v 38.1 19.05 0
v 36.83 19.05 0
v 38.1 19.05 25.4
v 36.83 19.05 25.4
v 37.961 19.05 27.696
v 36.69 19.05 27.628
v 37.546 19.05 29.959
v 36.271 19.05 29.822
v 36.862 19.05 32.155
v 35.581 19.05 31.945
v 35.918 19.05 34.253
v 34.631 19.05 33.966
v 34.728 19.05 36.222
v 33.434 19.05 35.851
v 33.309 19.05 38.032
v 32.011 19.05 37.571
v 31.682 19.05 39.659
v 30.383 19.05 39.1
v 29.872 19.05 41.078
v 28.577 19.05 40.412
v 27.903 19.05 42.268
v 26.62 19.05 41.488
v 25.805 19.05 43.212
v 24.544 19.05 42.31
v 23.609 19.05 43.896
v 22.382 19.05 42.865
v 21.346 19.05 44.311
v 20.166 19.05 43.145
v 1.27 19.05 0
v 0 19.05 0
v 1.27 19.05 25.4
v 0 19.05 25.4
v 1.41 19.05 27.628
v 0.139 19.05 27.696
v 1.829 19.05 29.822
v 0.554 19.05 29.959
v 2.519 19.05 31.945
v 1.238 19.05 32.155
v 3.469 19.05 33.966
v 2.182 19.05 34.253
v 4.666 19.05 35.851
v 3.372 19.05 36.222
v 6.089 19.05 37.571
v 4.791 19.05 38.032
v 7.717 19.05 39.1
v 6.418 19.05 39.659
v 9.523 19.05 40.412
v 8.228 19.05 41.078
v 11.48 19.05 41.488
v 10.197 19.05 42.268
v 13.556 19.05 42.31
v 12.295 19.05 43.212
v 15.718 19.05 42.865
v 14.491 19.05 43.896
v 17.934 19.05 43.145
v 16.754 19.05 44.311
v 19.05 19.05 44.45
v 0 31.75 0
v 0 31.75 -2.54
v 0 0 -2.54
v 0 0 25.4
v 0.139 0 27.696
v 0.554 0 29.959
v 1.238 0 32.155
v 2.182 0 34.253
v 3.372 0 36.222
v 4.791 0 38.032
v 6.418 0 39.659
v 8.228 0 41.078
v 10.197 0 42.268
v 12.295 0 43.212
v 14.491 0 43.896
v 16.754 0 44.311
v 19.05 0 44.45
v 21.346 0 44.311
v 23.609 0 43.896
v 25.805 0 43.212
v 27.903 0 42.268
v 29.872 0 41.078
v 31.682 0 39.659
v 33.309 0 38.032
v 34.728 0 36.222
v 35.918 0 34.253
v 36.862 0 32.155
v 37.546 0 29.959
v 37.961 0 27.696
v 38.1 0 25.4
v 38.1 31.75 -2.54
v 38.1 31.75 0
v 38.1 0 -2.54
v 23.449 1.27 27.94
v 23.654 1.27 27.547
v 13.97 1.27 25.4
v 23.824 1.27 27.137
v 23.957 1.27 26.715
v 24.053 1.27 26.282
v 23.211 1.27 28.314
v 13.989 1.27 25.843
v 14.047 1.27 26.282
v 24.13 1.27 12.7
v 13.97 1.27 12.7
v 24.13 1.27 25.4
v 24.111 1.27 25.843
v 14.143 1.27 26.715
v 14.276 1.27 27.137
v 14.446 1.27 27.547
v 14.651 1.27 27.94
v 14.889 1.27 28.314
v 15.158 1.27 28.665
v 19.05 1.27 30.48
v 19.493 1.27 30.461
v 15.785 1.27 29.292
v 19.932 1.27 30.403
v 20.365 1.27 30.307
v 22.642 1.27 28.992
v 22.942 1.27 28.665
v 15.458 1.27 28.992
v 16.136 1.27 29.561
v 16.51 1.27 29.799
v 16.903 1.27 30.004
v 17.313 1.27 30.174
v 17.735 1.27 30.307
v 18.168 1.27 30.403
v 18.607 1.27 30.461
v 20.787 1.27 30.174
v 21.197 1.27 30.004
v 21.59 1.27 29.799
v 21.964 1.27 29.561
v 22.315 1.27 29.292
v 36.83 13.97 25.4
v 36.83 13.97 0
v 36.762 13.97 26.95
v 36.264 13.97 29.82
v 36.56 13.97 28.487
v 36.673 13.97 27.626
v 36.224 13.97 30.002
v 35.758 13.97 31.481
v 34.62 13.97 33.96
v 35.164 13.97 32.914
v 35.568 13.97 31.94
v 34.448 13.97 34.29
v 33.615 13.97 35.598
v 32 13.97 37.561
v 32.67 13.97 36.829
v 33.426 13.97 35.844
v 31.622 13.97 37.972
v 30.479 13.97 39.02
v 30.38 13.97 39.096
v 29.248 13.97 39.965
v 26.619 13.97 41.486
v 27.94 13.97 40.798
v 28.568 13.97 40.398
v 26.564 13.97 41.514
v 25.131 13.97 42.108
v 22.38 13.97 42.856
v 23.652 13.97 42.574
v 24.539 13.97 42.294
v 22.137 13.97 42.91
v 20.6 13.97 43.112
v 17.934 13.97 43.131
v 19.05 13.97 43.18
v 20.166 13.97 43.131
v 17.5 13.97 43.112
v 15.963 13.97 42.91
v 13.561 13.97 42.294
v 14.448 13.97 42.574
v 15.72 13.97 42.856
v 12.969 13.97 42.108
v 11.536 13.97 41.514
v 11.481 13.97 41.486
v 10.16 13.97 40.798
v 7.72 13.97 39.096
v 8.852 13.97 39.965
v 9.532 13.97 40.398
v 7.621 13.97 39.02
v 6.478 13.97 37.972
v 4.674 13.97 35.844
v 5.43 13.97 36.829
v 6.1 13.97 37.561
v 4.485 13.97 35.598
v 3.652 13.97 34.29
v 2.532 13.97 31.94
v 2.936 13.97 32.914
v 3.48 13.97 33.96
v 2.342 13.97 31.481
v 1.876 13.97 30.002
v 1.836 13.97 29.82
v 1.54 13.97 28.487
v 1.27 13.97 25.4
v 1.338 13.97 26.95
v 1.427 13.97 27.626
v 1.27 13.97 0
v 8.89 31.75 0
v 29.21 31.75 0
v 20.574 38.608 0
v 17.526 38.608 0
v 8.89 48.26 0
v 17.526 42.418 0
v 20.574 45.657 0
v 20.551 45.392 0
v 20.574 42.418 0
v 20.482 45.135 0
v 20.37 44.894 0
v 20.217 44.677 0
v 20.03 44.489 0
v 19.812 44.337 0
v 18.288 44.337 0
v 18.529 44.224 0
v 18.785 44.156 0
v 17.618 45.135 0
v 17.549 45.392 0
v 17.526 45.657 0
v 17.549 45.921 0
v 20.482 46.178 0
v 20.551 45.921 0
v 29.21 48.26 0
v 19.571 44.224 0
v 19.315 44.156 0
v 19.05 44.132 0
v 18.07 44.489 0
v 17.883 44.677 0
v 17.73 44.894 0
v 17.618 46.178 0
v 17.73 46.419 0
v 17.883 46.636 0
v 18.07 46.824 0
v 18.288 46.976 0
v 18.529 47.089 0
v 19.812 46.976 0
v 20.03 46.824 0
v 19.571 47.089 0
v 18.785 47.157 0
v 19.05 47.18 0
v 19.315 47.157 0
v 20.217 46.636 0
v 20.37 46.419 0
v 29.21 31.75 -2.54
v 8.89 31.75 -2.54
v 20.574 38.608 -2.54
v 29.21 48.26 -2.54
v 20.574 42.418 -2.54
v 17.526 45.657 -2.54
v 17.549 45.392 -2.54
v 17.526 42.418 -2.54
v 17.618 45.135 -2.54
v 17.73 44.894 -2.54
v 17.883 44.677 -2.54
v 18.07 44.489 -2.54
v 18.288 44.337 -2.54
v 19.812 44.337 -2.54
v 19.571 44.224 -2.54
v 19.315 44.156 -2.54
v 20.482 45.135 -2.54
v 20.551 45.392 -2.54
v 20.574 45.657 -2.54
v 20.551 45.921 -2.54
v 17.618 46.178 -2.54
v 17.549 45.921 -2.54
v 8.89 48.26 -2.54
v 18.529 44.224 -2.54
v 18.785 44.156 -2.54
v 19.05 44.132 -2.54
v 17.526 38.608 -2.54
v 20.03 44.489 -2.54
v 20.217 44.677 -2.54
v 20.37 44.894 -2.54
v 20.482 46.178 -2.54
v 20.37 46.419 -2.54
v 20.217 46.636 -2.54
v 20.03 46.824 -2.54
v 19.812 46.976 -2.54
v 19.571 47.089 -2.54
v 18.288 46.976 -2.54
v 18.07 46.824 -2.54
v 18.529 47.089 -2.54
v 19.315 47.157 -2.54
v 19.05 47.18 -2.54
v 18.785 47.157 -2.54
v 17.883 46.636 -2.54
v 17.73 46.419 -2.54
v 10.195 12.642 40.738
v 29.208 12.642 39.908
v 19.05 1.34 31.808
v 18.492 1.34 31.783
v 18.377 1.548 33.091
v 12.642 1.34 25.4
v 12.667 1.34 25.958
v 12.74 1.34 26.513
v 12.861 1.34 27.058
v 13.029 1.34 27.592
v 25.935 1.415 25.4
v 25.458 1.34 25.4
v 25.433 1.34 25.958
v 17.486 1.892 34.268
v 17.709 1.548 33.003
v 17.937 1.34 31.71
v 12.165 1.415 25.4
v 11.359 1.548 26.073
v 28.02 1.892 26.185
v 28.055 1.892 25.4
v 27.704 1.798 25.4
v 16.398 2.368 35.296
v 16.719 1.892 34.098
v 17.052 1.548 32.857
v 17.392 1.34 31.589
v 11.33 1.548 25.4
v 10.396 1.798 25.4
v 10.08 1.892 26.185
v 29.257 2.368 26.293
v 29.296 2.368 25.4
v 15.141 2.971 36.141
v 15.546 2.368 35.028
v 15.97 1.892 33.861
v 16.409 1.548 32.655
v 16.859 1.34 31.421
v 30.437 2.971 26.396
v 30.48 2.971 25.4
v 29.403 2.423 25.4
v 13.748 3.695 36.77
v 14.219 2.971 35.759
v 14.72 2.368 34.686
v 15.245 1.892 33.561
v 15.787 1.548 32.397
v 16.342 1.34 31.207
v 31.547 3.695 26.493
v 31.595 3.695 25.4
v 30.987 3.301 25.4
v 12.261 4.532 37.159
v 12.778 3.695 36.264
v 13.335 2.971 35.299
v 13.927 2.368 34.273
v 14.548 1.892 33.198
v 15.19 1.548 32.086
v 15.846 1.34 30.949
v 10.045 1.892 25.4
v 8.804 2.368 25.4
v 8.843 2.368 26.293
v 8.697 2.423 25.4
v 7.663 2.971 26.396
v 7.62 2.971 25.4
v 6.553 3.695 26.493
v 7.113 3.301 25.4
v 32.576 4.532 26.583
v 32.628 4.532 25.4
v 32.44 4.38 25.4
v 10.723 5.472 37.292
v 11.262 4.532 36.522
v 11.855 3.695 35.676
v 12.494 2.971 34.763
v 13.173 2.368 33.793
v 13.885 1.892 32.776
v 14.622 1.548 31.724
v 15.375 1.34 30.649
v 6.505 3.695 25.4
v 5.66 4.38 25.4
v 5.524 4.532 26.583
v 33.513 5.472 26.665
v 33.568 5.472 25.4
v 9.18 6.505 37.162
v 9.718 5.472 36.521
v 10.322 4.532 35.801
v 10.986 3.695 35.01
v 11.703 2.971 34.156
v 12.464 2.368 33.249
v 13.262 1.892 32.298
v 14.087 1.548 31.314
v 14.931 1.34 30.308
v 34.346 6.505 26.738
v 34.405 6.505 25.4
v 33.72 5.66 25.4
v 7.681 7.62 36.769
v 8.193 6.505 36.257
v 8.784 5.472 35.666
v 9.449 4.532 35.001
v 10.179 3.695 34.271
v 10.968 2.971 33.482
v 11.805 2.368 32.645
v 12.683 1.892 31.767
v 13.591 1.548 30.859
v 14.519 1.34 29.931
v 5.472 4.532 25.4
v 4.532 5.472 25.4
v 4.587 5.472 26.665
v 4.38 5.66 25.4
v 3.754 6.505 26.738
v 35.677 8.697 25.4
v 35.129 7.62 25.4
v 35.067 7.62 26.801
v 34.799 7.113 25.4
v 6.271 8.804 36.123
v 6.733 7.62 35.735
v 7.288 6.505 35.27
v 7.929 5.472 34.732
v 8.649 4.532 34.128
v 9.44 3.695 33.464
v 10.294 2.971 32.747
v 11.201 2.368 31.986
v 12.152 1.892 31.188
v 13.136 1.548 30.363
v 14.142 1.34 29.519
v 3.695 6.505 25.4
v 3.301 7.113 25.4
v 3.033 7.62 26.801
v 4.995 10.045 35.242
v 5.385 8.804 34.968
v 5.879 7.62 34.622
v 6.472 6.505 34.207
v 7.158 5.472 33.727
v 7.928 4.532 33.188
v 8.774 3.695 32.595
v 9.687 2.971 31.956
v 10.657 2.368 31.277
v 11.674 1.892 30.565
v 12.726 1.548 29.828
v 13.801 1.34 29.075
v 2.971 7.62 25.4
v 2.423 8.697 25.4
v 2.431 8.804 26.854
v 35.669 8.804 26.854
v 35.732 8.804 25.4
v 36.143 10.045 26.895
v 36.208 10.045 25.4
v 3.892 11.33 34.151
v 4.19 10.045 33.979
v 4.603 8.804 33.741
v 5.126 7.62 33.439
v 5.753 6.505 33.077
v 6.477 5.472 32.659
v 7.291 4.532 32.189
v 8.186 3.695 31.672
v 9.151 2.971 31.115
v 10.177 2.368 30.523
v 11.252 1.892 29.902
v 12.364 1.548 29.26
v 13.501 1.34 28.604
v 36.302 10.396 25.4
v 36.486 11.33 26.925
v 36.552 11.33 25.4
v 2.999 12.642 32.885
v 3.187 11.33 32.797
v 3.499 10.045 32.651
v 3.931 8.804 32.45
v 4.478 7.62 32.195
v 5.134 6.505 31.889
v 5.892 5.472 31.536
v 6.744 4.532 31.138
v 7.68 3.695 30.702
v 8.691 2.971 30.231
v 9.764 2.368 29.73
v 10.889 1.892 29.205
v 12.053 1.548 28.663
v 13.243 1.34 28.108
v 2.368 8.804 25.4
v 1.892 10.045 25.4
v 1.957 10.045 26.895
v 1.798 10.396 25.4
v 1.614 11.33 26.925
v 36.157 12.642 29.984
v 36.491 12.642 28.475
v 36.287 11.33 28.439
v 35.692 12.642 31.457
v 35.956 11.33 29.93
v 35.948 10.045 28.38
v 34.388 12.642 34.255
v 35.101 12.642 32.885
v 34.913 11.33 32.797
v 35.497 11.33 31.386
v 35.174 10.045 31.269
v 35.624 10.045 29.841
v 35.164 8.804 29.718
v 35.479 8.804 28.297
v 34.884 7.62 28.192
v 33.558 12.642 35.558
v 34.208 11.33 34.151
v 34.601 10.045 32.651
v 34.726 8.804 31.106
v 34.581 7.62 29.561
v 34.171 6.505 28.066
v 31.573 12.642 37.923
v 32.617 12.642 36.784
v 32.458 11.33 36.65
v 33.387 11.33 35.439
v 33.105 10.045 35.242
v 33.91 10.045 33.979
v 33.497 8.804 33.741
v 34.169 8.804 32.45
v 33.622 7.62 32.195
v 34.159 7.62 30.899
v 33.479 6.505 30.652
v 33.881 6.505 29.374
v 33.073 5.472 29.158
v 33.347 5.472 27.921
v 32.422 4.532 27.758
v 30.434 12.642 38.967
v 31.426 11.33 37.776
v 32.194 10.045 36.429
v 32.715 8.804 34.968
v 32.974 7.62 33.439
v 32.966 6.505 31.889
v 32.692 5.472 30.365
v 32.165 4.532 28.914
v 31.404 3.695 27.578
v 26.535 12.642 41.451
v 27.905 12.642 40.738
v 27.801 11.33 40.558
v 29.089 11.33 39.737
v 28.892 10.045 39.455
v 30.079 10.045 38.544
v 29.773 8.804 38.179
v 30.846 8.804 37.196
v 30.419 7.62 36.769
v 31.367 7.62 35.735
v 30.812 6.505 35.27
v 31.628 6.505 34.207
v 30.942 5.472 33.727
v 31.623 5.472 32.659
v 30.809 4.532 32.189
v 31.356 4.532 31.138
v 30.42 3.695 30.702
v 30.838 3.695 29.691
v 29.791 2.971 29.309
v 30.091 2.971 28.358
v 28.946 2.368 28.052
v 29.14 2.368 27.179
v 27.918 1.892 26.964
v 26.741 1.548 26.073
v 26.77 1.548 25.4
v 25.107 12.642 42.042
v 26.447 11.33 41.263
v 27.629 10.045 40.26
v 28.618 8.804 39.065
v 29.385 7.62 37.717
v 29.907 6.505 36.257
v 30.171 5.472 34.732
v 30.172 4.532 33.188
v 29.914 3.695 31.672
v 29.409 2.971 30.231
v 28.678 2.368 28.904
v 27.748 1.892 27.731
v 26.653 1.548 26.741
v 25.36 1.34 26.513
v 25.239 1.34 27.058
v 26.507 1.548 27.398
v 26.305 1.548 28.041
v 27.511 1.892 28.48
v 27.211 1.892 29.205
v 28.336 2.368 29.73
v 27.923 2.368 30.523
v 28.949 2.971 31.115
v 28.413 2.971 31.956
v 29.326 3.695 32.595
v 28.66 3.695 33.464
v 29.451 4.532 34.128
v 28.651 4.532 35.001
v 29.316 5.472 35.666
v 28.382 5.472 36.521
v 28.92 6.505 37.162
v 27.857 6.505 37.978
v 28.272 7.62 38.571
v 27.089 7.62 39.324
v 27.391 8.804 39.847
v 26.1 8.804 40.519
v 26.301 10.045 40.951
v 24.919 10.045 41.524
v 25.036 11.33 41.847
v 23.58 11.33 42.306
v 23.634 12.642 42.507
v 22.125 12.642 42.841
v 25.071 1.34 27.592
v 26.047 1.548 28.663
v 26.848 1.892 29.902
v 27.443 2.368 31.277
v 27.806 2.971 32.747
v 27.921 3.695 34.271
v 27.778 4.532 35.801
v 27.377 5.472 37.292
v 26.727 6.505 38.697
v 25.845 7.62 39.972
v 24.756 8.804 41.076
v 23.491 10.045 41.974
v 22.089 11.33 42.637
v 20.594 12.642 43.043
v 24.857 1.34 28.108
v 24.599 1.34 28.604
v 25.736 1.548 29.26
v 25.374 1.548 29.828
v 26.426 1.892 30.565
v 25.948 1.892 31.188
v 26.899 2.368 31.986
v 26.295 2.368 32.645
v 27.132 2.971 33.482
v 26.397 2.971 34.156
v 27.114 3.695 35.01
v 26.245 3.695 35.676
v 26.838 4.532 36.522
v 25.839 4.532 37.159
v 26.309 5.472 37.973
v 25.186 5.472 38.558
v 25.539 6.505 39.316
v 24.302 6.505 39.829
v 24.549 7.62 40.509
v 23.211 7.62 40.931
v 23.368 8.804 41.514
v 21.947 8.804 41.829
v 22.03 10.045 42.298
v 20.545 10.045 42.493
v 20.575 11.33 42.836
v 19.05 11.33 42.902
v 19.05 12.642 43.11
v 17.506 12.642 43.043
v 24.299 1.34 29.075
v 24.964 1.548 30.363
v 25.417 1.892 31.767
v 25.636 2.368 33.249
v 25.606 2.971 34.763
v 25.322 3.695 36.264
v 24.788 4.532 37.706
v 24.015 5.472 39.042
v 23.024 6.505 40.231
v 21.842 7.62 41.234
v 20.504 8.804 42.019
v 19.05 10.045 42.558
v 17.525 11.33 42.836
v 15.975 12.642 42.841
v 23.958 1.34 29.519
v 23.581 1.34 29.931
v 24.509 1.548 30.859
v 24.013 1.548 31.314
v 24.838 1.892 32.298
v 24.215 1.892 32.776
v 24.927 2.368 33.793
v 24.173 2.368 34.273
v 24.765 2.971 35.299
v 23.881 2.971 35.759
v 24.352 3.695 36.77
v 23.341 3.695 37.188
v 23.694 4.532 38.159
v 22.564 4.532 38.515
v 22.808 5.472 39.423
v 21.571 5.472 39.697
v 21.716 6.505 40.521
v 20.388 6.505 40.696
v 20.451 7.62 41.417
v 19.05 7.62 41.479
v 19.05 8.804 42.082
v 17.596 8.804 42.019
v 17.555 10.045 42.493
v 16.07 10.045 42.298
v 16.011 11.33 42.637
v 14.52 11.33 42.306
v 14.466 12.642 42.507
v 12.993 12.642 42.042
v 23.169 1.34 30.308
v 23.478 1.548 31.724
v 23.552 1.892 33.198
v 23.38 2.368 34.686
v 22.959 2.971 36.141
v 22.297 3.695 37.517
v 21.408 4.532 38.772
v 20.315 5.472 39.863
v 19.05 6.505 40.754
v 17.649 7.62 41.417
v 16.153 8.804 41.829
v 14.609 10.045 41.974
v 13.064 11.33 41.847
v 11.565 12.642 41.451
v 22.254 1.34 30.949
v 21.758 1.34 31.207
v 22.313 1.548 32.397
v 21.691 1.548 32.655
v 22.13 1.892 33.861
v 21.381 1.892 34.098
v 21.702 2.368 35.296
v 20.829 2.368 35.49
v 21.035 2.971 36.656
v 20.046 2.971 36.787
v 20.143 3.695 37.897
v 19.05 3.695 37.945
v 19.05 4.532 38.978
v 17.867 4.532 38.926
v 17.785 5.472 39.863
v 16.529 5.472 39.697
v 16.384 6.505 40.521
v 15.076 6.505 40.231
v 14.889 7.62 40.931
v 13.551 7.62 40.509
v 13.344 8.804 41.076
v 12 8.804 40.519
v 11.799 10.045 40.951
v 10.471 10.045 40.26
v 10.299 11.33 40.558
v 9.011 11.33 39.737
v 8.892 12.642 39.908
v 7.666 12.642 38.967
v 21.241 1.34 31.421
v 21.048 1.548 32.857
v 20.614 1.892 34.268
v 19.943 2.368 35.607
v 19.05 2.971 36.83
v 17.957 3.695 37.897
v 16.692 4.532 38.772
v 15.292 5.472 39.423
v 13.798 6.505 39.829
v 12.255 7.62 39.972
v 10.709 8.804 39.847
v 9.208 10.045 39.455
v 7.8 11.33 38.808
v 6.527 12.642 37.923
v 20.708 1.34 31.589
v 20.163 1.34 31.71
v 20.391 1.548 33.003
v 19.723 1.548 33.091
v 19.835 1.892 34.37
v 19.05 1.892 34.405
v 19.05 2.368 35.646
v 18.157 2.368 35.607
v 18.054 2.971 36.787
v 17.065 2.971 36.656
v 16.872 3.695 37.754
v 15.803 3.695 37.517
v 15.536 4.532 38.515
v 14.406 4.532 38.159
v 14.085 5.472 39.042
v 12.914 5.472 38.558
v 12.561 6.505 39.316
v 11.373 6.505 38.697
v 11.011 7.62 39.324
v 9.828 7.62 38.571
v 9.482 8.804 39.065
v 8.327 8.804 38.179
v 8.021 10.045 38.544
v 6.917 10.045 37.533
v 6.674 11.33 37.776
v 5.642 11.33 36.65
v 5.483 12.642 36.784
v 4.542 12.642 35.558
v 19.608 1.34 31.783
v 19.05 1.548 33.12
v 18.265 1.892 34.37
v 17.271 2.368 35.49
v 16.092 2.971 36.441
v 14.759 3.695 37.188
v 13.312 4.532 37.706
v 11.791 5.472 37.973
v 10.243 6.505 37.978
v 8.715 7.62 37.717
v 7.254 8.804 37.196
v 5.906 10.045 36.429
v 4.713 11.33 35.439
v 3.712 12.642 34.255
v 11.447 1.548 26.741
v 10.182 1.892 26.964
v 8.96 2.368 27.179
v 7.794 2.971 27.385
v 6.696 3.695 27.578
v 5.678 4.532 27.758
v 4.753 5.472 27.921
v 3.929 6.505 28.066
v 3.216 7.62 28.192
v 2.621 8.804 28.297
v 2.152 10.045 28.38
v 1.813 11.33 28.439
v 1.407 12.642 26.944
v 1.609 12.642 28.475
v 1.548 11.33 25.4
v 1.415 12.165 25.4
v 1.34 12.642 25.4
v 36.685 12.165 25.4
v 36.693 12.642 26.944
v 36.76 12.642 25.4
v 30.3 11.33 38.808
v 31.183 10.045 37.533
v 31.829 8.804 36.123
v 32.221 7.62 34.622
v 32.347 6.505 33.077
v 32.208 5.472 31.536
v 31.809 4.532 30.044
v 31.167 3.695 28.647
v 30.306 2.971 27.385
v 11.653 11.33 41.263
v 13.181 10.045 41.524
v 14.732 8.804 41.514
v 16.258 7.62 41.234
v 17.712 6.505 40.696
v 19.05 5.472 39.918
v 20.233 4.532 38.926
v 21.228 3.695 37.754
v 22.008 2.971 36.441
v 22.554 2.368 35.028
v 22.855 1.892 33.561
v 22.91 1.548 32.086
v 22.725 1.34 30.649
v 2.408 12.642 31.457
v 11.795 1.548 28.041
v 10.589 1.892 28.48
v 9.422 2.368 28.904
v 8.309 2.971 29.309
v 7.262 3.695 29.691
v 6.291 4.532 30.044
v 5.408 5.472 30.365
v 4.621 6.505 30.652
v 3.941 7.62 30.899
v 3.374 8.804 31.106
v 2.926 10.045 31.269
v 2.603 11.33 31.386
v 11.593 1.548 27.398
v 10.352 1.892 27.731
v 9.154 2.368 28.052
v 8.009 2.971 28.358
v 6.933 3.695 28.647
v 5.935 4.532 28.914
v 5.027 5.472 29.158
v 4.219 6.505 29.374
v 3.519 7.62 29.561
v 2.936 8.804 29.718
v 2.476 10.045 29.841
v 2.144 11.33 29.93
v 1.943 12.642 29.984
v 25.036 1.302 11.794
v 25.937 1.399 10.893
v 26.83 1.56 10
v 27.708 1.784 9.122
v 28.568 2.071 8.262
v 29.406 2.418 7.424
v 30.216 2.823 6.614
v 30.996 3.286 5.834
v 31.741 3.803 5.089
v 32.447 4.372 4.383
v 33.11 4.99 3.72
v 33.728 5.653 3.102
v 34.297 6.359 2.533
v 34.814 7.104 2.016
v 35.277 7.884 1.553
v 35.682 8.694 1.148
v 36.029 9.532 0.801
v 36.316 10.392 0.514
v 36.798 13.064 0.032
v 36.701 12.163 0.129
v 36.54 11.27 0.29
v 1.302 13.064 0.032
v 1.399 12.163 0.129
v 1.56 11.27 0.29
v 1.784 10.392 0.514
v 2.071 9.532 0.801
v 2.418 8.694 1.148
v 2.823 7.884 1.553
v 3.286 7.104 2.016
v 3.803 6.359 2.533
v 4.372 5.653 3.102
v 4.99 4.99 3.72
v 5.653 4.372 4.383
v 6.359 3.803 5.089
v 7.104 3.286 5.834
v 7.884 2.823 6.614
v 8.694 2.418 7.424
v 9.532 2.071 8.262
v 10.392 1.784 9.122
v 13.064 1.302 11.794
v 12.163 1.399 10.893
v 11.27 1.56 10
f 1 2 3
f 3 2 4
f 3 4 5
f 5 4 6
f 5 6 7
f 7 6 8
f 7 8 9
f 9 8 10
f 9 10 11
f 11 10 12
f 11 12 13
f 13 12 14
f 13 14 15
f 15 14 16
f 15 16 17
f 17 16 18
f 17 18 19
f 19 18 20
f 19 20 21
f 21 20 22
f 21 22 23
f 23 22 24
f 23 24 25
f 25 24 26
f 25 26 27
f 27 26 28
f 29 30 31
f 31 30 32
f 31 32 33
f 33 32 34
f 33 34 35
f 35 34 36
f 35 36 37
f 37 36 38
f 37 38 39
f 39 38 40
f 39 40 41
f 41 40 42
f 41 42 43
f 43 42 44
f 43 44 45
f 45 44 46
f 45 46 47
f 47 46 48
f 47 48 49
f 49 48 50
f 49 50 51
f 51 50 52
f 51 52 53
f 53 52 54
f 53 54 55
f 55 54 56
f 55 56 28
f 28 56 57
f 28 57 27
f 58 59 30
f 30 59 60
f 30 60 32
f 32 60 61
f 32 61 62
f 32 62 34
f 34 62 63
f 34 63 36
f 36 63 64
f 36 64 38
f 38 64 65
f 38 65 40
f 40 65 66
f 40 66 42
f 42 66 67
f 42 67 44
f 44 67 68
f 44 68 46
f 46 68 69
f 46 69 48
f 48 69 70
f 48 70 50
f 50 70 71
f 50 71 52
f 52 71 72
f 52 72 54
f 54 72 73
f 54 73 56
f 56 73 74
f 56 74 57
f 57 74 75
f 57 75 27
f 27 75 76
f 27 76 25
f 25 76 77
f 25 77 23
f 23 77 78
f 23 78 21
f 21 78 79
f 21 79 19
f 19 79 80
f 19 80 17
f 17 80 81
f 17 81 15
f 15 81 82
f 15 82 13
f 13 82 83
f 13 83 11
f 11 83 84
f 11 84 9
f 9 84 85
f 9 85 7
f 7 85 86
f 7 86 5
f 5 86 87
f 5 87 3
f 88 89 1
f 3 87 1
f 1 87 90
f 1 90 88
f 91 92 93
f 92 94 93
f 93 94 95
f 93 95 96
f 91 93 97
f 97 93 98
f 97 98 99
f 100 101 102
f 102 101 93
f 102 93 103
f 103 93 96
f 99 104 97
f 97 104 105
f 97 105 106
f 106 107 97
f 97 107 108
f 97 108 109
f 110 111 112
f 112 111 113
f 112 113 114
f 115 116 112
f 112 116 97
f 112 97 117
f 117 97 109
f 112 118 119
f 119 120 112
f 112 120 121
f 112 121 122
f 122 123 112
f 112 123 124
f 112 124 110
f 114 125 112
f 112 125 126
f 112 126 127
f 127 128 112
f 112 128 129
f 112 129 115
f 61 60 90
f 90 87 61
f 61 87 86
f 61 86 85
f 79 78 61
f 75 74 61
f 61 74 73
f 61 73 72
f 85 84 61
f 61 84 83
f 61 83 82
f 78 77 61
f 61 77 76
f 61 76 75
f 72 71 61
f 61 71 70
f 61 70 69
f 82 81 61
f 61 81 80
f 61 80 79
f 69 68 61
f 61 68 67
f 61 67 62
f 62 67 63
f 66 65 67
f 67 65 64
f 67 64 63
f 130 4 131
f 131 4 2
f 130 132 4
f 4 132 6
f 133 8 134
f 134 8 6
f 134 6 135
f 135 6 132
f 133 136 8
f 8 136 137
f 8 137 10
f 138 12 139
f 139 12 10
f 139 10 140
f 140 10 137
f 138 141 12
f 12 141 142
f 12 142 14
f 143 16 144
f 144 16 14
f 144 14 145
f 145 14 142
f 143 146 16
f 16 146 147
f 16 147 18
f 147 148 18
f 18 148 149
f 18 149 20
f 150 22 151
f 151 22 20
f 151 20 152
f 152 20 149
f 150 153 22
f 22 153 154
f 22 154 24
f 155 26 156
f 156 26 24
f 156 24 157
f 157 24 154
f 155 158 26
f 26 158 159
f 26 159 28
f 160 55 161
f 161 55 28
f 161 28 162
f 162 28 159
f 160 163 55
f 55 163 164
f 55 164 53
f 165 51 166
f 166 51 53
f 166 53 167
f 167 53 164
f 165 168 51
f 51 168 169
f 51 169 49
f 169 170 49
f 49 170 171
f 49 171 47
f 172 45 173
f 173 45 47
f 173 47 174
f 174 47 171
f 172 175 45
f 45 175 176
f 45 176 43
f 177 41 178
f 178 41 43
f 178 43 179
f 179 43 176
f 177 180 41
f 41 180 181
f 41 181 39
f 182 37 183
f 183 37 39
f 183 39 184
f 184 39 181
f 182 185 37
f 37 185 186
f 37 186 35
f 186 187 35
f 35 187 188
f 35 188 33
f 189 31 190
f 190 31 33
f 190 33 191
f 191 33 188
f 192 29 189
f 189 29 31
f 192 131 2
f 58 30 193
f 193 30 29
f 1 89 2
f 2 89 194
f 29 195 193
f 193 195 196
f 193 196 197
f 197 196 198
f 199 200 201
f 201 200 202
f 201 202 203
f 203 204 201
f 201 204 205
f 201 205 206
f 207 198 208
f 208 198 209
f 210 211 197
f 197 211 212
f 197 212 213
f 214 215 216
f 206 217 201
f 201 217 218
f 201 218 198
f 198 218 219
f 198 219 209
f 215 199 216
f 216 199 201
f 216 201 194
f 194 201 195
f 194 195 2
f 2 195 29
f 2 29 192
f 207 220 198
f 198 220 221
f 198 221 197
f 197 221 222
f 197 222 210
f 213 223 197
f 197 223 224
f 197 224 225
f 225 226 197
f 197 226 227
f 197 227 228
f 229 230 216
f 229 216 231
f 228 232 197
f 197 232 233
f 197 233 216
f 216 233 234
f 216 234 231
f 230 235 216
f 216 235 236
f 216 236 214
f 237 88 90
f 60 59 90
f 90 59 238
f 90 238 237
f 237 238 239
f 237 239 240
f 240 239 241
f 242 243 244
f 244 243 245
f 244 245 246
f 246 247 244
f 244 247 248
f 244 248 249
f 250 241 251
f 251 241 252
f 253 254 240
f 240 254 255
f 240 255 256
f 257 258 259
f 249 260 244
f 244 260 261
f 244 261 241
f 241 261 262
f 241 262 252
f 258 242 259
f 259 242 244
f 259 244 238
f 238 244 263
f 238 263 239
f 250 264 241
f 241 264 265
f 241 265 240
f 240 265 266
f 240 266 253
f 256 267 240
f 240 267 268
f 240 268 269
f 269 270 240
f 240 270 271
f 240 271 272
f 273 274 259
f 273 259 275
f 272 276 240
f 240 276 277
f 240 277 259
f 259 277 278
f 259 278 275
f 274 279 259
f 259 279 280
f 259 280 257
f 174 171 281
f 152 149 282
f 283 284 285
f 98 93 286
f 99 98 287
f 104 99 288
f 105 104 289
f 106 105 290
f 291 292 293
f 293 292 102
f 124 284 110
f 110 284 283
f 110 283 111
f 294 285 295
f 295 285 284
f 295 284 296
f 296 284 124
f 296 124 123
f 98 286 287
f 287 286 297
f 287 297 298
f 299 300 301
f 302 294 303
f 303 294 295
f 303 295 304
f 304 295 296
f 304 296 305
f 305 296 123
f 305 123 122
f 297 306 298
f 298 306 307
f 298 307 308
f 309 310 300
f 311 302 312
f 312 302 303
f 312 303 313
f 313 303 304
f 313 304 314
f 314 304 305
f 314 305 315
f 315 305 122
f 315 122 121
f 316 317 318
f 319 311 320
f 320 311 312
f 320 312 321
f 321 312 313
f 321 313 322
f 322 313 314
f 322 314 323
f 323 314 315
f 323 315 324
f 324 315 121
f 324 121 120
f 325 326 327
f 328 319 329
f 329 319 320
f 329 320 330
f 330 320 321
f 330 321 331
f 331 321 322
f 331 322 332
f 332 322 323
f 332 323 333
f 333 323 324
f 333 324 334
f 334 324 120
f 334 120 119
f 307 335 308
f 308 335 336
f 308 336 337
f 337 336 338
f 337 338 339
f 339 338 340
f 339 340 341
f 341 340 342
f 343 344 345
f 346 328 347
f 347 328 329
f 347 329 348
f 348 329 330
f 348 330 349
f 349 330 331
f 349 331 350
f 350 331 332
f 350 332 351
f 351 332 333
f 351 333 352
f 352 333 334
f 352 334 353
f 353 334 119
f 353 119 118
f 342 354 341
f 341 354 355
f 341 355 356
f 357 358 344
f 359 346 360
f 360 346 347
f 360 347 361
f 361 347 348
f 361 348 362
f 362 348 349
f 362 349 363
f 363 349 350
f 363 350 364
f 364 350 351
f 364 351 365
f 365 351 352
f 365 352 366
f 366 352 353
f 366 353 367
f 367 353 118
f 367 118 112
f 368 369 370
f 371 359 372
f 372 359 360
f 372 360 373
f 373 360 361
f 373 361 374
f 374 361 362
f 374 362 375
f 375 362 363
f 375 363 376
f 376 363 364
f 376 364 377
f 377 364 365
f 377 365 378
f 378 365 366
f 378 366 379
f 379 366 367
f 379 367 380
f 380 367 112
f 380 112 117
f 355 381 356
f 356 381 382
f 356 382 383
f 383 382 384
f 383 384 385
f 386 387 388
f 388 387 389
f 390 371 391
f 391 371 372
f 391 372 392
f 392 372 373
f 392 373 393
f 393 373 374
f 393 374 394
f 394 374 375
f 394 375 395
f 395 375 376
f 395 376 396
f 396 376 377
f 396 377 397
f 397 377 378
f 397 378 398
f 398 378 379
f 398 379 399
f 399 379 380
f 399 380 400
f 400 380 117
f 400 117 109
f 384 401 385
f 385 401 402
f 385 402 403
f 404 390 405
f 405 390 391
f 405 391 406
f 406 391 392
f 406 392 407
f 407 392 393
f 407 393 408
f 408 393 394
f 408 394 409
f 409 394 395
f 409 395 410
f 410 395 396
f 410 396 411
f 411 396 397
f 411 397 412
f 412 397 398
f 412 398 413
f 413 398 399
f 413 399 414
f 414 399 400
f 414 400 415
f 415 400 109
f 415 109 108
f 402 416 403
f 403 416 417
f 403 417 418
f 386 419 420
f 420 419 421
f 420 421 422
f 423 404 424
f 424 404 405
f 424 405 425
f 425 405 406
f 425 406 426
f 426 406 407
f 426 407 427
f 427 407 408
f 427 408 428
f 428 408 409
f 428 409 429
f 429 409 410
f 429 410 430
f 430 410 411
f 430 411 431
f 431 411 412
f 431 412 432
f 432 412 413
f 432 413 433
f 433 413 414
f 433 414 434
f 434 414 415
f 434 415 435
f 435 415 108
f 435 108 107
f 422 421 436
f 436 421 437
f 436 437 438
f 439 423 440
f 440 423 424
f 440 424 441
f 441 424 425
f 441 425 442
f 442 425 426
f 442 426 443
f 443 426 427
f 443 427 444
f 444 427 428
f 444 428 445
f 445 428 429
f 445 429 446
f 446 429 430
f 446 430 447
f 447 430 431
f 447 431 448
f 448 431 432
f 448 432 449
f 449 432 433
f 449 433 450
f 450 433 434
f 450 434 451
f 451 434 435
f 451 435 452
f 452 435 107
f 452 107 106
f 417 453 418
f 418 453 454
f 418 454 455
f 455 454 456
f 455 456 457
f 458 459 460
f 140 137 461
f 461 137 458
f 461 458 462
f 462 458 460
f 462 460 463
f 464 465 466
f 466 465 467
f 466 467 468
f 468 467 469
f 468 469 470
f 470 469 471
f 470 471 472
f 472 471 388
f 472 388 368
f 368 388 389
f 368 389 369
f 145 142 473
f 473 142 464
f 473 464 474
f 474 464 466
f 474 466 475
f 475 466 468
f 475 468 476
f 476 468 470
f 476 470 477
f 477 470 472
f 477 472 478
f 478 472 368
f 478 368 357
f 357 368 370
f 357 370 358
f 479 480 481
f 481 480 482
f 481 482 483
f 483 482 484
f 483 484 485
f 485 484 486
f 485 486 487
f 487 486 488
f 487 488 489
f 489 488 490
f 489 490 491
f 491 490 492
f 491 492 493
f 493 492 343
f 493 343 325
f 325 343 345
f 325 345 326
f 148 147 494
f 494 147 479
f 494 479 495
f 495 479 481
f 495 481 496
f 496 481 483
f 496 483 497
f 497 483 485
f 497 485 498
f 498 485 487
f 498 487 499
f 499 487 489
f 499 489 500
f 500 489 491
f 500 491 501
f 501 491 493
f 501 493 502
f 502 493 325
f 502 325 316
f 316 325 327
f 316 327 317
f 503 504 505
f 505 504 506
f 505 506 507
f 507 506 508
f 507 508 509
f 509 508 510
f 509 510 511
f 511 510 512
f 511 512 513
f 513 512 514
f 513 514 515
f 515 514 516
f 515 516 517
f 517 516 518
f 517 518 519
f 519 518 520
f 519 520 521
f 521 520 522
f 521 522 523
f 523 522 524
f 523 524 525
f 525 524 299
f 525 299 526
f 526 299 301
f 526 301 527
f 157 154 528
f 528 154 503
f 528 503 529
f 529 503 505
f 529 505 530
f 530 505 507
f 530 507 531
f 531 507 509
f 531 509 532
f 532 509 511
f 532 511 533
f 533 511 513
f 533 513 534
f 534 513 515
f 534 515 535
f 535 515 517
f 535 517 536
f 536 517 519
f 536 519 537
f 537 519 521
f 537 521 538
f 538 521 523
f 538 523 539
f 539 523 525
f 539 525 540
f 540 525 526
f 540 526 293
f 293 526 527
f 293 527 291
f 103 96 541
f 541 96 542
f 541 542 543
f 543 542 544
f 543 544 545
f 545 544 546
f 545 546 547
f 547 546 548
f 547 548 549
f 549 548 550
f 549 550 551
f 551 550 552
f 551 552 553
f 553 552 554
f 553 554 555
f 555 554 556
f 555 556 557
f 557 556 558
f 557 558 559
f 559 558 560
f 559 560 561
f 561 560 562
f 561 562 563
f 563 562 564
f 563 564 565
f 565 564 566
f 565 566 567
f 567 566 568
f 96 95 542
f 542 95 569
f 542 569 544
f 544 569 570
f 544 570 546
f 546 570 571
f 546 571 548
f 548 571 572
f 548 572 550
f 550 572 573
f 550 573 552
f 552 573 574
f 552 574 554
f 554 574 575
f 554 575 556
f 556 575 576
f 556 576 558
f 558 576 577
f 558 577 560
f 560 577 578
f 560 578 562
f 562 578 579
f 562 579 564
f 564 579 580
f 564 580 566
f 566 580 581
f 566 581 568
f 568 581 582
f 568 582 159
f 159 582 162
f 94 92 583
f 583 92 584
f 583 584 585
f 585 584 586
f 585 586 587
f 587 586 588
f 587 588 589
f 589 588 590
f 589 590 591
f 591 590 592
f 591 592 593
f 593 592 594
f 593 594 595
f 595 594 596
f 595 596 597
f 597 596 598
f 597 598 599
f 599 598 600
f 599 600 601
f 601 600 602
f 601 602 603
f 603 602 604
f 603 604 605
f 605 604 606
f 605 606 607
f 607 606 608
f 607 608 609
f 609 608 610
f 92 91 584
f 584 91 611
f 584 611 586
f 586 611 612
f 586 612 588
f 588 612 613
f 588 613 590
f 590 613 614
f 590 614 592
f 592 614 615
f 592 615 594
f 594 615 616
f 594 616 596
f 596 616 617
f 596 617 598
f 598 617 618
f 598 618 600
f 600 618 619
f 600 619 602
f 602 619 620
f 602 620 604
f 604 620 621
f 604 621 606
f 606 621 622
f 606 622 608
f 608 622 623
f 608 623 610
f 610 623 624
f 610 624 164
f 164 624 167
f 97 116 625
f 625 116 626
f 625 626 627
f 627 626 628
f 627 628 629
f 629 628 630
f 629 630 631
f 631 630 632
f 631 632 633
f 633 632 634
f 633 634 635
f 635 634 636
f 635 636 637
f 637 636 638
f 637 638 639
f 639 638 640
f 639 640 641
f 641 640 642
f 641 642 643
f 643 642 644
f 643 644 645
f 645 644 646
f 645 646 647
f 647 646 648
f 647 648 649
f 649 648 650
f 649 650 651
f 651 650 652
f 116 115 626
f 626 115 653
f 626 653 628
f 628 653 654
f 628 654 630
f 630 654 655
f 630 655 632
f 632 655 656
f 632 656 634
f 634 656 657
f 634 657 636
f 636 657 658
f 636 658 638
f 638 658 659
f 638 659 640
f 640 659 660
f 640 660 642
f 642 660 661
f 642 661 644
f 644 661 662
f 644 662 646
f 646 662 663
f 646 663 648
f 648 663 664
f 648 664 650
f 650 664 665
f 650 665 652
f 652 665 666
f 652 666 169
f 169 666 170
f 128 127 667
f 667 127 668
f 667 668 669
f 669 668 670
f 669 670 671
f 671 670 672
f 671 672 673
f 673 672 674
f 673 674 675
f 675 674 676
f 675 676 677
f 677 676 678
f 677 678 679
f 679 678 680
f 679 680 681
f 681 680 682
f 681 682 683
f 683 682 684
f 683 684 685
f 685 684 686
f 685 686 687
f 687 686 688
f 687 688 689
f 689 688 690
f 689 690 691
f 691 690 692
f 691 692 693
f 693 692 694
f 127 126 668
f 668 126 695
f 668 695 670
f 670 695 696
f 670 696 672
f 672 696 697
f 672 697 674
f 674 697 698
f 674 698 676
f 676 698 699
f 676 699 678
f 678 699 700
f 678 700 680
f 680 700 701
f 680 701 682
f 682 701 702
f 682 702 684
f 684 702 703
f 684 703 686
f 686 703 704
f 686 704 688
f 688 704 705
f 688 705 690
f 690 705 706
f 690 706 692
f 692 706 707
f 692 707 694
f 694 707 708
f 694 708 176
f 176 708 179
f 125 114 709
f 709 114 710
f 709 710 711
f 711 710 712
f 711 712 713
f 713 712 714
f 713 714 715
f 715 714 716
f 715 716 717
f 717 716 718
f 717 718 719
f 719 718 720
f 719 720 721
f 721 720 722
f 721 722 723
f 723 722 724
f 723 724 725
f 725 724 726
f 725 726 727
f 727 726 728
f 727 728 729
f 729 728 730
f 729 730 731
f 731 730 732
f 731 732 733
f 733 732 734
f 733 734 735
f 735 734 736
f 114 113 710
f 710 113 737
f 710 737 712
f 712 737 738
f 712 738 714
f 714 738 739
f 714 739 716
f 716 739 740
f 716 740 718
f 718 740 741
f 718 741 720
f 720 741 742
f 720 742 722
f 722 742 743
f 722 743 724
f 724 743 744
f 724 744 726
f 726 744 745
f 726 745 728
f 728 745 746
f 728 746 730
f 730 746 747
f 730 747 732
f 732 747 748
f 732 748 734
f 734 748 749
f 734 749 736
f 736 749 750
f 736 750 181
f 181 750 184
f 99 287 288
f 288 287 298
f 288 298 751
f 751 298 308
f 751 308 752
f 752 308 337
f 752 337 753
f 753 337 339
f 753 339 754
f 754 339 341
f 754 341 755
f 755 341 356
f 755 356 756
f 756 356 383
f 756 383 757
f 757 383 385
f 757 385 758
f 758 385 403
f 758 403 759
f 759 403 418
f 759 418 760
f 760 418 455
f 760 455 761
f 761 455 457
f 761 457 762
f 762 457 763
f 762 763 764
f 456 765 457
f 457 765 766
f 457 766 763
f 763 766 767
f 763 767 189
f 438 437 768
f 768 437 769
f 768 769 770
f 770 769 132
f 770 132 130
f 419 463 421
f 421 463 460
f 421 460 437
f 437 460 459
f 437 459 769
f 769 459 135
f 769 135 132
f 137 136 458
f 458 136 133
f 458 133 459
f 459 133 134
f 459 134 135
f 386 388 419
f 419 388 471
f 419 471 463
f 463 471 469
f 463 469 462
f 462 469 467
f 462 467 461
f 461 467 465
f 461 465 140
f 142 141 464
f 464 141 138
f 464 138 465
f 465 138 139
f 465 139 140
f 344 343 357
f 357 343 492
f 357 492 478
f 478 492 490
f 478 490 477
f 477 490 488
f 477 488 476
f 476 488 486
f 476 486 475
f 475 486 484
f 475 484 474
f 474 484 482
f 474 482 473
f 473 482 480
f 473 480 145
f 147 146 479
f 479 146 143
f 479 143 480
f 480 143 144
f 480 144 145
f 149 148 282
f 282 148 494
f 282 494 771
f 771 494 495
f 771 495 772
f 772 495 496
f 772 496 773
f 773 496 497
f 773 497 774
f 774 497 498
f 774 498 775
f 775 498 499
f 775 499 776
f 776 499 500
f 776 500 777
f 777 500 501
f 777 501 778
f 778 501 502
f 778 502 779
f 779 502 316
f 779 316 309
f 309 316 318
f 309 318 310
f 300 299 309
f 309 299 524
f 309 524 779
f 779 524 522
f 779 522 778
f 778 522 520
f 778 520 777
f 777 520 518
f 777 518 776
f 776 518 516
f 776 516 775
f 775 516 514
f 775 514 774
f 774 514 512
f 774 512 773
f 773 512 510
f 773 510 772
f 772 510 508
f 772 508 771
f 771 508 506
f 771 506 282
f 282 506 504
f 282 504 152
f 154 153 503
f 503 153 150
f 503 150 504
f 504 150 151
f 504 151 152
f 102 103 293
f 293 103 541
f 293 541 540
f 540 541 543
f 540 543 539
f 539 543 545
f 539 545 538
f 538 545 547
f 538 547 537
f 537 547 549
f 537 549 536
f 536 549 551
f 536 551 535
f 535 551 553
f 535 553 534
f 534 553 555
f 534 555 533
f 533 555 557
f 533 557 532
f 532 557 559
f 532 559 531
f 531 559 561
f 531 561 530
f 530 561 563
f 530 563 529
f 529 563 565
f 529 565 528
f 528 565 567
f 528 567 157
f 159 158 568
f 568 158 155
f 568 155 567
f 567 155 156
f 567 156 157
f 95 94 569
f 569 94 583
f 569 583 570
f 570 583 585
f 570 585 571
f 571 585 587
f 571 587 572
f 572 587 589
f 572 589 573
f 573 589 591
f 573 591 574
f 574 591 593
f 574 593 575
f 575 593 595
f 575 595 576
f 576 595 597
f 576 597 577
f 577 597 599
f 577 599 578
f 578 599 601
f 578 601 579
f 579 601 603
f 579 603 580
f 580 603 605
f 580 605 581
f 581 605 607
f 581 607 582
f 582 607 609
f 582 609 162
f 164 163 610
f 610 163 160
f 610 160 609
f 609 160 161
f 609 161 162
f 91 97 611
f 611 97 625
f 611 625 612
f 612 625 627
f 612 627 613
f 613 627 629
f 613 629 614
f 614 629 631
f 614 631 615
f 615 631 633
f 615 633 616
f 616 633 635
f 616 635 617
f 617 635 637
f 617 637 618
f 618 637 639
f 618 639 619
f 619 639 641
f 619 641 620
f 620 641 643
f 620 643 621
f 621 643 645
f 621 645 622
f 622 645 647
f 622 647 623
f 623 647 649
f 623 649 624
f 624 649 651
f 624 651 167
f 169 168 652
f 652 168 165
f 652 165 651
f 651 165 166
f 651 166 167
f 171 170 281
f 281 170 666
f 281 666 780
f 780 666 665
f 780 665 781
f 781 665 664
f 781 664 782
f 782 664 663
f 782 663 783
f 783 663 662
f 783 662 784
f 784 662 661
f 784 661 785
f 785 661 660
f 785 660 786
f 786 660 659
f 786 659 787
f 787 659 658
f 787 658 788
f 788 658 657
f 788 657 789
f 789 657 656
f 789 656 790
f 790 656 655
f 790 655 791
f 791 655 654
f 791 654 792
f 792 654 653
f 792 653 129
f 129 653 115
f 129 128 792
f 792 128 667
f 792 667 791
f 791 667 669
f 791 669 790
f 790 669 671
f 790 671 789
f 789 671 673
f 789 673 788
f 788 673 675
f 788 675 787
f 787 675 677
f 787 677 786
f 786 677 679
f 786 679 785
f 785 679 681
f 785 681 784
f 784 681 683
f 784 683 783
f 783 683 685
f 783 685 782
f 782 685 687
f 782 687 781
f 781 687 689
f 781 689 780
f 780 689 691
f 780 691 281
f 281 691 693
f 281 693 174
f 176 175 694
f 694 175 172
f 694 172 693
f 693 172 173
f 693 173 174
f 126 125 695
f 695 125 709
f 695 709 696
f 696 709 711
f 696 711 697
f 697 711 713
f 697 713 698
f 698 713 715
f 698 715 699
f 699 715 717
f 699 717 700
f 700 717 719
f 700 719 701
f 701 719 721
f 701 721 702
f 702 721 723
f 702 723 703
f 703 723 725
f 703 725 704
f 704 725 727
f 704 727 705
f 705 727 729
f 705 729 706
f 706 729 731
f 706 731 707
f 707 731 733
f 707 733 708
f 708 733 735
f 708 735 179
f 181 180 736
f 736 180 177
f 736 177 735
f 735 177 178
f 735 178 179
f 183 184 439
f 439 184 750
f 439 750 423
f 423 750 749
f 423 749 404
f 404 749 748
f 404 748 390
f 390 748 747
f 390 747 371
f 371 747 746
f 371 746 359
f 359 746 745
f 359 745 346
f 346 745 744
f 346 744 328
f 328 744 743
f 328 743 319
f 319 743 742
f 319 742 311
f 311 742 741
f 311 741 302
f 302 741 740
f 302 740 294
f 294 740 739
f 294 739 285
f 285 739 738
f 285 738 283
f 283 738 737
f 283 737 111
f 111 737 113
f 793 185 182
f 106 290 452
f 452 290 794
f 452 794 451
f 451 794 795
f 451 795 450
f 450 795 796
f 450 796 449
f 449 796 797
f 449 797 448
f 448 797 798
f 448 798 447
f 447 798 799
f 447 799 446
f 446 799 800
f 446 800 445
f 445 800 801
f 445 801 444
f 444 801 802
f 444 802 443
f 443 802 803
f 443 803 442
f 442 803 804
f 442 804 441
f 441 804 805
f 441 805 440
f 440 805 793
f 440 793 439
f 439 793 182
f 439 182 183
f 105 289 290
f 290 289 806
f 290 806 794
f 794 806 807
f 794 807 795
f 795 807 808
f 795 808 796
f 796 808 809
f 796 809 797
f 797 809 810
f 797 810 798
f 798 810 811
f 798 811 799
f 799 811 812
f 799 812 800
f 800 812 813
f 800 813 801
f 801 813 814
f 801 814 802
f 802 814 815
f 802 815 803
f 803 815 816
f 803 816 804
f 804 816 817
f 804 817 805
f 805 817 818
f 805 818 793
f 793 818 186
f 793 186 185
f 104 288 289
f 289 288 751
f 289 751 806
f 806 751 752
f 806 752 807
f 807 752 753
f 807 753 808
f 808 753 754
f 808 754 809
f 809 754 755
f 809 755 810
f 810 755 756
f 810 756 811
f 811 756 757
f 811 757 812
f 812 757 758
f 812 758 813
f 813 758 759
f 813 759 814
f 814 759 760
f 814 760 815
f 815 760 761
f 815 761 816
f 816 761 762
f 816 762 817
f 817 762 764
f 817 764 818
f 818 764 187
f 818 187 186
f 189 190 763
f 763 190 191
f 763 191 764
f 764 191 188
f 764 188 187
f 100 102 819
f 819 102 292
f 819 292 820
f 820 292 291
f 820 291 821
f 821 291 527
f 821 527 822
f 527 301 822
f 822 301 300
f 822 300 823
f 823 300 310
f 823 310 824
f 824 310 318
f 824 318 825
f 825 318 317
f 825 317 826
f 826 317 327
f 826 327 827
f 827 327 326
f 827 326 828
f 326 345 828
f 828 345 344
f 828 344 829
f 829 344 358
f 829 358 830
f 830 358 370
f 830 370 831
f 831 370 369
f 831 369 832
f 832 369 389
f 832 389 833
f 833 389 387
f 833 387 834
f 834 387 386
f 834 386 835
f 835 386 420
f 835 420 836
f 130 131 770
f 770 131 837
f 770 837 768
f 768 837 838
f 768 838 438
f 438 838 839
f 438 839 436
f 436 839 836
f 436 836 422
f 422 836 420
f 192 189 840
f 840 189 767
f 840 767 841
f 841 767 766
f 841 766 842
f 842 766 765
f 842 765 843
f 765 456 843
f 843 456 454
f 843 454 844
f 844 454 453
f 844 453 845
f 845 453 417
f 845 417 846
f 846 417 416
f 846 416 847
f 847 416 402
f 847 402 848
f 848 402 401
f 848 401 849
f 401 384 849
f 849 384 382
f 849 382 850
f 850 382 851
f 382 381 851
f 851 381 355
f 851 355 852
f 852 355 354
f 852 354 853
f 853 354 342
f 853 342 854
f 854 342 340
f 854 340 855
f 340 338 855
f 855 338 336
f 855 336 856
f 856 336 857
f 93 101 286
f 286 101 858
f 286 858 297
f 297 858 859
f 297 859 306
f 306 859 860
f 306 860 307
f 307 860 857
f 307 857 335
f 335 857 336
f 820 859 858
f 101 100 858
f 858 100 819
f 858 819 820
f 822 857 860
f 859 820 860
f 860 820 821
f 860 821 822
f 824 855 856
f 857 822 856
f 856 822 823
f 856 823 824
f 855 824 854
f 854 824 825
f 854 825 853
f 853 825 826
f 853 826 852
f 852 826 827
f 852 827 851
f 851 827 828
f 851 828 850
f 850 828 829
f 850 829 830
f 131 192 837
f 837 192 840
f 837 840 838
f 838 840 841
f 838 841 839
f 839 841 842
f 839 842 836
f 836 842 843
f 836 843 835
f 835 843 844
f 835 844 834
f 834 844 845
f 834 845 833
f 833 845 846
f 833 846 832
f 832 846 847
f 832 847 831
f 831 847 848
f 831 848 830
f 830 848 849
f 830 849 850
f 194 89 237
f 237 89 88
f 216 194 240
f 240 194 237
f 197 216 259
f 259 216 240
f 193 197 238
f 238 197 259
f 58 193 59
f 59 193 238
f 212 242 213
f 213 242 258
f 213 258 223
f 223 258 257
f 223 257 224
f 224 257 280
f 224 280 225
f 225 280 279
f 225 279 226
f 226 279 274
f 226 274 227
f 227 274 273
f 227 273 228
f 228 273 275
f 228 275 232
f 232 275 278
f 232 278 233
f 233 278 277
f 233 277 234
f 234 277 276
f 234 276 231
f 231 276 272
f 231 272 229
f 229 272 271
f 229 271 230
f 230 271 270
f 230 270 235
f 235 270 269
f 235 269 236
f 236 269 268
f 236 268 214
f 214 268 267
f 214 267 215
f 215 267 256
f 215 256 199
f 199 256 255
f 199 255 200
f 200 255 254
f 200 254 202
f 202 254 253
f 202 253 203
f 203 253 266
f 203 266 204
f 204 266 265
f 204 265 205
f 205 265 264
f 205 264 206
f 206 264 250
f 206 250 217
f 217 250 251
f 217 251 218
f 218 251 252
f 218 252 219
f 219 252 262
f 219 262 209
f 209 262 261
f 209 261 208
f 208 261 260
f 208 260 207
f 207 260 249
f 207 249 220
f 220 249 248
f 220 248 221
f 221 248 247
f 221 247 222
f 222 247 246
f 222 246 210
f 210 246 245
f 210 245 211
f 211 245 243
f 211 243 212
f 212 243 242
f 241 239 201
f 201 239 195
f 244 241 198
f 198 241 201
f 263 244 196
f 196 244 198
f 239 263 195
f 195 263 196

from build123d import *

# Parameters (mm, degrees)
BOSS_EXTRUDE1_DEPTH = 1.27
BOSS_EXTRUDE3_DEPTH = 17.78
SKETCH5_W           = 38.1
SKETCH5_H           = 19.05
BOSS_EXTRUDE4_DEPTH = 2.54
FILLET1_R           = 12.7
BOSS_EXTRUDE5_DEPTH = 2.54
CUT_EXTRUDE6_REACH  = 48.99
SKETCH12_R          = 1.524
SKETCH12_W          = 3.048
SKETCH12_H          = 3.81


with BuildPart() as part:
    # Sketch1 → Boss-Extrude1 (new body)
    with BuildSketch(Plane(origin=(0, 0, 0), x_dir=(1, 0, 0), z_dir=(0, 1, 0))):
        with BuildLine():
            Line((0, 0), (38.1, 0))
            Line((38.1, 0), (38.1, -25.4))
            ThreePointArc((38.1, -25.4), (19.05, -44.45), (0, -25.4))
            Line((0, -25.4), (0, 0))
        make_face()
    extrude(amount=BOSS_EXTRUDE1_DEPTH)

    # Sketch3 → Boss-Extrude3 (add)
    with BuildSketch(Plane(origin=(0, 1.27, 0), x_dir=(1, 0, 0), z_dir=(0, 1, 0))):
        with BuildLine():
            Line((0, 0), (0, -25.4))
            ThreePointArc((0, -25.4), (19.05, -44.45), (38.1, -25.4))
            Line((38.1, -25.4), (38.1, 0))
            Line((38.1, 0), (36.83, 0))
            Line((36.83, 0), (36.83, -25.4))
            ThreePointArc((36.83, -25.4), (19.05, -43.18), (1.27, -25.4))
            Line((1.27, -25.4), (1.27, 0))
            Line((1.27, 0), (0, 0))
        make_face()
    extrude(amount=BOSS_EXTRUDE3_DEPTH)

    # Sketch5 → Boss-Extrude4 (add)
    with BuildSketch(Plane(origin=(0, 0, 0), x_dir=(-1, 0, 0), z_dir=(0, 0, -1))):
        with Locations((-19.05, 9.525)):
            Rectangle(SKETCH5_W, SKETCH5_H)
    extrude(amount=BOSS_EXTRUDE4_DEPTH)

    # Fillet1
    fillet1_edges = [part.edges().sort_by_distance(p)[0] for p in [
        (19.05, 1.27, 0),
        (36.83, 1.27, 12.7),
        (19.05, 1.27, 43.18),
        (1.27, 1.27, 12.7),
    ]]
    fillet(fillet1_edges, radius=FILLET1_R)

    # Sketch10 → Boss-Extrude5 (add)
    with BuildSketch(Plane(origin=(0, 0, -2.54), x_dir=(-1, 0, 0), z_dir=(0, 0, -1))):
        Polygon((-29.21, 31.75), (-29.21, 48.26), (-8.89, 48.26), (-8.89, 31.75), (0, 31.75), (0, 19.05), (-38.1, 19.05), (-38.1, 31.75), align=None)
    extrude(amount=-BOSS_EXTRUDE5_DEPTH)

    # Sketch12 → Cut-Extrude6 (cut, up to next)
    with BuildSketch(Plane(origin=(0, 0, -2.54), x_dir=(-1, 0, 0), z_dir=(0, 0, -1)), mode=Mode.PRIVATE) as cut_extrude6_sk1:
        with Locations((-19.05, 45.6565)):
            Circle(SKETCH12_R)
    cut_extrude6_tool1 = extrude(cut_extrude6_sk1.sketch, amount=-CUT_EXTRUDE6_REACH, mode=Mode.PRIVATE) & part.part
    add(cut_extrude6_tool1.solids().sort_by_distance((19.05, 45.6565, -2.54))[0], mode=Mode.SUBTRACT)
    # Sketch12 → Cut-Extrude6 (cut, up to next)
    with BuildSketch(Plane(origin=(0, 0, -2.54), x_dir=(-1, 0, 0), z_dir=(0, 0, -1)), mode=Mode.PRIVATE) as cut_extrude6_sk2:
        with Locations((-19.05, 40.513)):
            Rectangle(SKETCH12_W, SKETCH12_H)
    cut_extrude6_tool2 = extrude(cut_extrude6_sk2.sketch, amount=-CUT_EXTRUDE6_REACH, mode=Mode.PRIVATE) & part.part
    add(cut_extrude6_tool2.solids().sort_by_distance((19.05, 40.513, -2.54))[0], mode=Mode.SUBTRACT)


solid = part.part
